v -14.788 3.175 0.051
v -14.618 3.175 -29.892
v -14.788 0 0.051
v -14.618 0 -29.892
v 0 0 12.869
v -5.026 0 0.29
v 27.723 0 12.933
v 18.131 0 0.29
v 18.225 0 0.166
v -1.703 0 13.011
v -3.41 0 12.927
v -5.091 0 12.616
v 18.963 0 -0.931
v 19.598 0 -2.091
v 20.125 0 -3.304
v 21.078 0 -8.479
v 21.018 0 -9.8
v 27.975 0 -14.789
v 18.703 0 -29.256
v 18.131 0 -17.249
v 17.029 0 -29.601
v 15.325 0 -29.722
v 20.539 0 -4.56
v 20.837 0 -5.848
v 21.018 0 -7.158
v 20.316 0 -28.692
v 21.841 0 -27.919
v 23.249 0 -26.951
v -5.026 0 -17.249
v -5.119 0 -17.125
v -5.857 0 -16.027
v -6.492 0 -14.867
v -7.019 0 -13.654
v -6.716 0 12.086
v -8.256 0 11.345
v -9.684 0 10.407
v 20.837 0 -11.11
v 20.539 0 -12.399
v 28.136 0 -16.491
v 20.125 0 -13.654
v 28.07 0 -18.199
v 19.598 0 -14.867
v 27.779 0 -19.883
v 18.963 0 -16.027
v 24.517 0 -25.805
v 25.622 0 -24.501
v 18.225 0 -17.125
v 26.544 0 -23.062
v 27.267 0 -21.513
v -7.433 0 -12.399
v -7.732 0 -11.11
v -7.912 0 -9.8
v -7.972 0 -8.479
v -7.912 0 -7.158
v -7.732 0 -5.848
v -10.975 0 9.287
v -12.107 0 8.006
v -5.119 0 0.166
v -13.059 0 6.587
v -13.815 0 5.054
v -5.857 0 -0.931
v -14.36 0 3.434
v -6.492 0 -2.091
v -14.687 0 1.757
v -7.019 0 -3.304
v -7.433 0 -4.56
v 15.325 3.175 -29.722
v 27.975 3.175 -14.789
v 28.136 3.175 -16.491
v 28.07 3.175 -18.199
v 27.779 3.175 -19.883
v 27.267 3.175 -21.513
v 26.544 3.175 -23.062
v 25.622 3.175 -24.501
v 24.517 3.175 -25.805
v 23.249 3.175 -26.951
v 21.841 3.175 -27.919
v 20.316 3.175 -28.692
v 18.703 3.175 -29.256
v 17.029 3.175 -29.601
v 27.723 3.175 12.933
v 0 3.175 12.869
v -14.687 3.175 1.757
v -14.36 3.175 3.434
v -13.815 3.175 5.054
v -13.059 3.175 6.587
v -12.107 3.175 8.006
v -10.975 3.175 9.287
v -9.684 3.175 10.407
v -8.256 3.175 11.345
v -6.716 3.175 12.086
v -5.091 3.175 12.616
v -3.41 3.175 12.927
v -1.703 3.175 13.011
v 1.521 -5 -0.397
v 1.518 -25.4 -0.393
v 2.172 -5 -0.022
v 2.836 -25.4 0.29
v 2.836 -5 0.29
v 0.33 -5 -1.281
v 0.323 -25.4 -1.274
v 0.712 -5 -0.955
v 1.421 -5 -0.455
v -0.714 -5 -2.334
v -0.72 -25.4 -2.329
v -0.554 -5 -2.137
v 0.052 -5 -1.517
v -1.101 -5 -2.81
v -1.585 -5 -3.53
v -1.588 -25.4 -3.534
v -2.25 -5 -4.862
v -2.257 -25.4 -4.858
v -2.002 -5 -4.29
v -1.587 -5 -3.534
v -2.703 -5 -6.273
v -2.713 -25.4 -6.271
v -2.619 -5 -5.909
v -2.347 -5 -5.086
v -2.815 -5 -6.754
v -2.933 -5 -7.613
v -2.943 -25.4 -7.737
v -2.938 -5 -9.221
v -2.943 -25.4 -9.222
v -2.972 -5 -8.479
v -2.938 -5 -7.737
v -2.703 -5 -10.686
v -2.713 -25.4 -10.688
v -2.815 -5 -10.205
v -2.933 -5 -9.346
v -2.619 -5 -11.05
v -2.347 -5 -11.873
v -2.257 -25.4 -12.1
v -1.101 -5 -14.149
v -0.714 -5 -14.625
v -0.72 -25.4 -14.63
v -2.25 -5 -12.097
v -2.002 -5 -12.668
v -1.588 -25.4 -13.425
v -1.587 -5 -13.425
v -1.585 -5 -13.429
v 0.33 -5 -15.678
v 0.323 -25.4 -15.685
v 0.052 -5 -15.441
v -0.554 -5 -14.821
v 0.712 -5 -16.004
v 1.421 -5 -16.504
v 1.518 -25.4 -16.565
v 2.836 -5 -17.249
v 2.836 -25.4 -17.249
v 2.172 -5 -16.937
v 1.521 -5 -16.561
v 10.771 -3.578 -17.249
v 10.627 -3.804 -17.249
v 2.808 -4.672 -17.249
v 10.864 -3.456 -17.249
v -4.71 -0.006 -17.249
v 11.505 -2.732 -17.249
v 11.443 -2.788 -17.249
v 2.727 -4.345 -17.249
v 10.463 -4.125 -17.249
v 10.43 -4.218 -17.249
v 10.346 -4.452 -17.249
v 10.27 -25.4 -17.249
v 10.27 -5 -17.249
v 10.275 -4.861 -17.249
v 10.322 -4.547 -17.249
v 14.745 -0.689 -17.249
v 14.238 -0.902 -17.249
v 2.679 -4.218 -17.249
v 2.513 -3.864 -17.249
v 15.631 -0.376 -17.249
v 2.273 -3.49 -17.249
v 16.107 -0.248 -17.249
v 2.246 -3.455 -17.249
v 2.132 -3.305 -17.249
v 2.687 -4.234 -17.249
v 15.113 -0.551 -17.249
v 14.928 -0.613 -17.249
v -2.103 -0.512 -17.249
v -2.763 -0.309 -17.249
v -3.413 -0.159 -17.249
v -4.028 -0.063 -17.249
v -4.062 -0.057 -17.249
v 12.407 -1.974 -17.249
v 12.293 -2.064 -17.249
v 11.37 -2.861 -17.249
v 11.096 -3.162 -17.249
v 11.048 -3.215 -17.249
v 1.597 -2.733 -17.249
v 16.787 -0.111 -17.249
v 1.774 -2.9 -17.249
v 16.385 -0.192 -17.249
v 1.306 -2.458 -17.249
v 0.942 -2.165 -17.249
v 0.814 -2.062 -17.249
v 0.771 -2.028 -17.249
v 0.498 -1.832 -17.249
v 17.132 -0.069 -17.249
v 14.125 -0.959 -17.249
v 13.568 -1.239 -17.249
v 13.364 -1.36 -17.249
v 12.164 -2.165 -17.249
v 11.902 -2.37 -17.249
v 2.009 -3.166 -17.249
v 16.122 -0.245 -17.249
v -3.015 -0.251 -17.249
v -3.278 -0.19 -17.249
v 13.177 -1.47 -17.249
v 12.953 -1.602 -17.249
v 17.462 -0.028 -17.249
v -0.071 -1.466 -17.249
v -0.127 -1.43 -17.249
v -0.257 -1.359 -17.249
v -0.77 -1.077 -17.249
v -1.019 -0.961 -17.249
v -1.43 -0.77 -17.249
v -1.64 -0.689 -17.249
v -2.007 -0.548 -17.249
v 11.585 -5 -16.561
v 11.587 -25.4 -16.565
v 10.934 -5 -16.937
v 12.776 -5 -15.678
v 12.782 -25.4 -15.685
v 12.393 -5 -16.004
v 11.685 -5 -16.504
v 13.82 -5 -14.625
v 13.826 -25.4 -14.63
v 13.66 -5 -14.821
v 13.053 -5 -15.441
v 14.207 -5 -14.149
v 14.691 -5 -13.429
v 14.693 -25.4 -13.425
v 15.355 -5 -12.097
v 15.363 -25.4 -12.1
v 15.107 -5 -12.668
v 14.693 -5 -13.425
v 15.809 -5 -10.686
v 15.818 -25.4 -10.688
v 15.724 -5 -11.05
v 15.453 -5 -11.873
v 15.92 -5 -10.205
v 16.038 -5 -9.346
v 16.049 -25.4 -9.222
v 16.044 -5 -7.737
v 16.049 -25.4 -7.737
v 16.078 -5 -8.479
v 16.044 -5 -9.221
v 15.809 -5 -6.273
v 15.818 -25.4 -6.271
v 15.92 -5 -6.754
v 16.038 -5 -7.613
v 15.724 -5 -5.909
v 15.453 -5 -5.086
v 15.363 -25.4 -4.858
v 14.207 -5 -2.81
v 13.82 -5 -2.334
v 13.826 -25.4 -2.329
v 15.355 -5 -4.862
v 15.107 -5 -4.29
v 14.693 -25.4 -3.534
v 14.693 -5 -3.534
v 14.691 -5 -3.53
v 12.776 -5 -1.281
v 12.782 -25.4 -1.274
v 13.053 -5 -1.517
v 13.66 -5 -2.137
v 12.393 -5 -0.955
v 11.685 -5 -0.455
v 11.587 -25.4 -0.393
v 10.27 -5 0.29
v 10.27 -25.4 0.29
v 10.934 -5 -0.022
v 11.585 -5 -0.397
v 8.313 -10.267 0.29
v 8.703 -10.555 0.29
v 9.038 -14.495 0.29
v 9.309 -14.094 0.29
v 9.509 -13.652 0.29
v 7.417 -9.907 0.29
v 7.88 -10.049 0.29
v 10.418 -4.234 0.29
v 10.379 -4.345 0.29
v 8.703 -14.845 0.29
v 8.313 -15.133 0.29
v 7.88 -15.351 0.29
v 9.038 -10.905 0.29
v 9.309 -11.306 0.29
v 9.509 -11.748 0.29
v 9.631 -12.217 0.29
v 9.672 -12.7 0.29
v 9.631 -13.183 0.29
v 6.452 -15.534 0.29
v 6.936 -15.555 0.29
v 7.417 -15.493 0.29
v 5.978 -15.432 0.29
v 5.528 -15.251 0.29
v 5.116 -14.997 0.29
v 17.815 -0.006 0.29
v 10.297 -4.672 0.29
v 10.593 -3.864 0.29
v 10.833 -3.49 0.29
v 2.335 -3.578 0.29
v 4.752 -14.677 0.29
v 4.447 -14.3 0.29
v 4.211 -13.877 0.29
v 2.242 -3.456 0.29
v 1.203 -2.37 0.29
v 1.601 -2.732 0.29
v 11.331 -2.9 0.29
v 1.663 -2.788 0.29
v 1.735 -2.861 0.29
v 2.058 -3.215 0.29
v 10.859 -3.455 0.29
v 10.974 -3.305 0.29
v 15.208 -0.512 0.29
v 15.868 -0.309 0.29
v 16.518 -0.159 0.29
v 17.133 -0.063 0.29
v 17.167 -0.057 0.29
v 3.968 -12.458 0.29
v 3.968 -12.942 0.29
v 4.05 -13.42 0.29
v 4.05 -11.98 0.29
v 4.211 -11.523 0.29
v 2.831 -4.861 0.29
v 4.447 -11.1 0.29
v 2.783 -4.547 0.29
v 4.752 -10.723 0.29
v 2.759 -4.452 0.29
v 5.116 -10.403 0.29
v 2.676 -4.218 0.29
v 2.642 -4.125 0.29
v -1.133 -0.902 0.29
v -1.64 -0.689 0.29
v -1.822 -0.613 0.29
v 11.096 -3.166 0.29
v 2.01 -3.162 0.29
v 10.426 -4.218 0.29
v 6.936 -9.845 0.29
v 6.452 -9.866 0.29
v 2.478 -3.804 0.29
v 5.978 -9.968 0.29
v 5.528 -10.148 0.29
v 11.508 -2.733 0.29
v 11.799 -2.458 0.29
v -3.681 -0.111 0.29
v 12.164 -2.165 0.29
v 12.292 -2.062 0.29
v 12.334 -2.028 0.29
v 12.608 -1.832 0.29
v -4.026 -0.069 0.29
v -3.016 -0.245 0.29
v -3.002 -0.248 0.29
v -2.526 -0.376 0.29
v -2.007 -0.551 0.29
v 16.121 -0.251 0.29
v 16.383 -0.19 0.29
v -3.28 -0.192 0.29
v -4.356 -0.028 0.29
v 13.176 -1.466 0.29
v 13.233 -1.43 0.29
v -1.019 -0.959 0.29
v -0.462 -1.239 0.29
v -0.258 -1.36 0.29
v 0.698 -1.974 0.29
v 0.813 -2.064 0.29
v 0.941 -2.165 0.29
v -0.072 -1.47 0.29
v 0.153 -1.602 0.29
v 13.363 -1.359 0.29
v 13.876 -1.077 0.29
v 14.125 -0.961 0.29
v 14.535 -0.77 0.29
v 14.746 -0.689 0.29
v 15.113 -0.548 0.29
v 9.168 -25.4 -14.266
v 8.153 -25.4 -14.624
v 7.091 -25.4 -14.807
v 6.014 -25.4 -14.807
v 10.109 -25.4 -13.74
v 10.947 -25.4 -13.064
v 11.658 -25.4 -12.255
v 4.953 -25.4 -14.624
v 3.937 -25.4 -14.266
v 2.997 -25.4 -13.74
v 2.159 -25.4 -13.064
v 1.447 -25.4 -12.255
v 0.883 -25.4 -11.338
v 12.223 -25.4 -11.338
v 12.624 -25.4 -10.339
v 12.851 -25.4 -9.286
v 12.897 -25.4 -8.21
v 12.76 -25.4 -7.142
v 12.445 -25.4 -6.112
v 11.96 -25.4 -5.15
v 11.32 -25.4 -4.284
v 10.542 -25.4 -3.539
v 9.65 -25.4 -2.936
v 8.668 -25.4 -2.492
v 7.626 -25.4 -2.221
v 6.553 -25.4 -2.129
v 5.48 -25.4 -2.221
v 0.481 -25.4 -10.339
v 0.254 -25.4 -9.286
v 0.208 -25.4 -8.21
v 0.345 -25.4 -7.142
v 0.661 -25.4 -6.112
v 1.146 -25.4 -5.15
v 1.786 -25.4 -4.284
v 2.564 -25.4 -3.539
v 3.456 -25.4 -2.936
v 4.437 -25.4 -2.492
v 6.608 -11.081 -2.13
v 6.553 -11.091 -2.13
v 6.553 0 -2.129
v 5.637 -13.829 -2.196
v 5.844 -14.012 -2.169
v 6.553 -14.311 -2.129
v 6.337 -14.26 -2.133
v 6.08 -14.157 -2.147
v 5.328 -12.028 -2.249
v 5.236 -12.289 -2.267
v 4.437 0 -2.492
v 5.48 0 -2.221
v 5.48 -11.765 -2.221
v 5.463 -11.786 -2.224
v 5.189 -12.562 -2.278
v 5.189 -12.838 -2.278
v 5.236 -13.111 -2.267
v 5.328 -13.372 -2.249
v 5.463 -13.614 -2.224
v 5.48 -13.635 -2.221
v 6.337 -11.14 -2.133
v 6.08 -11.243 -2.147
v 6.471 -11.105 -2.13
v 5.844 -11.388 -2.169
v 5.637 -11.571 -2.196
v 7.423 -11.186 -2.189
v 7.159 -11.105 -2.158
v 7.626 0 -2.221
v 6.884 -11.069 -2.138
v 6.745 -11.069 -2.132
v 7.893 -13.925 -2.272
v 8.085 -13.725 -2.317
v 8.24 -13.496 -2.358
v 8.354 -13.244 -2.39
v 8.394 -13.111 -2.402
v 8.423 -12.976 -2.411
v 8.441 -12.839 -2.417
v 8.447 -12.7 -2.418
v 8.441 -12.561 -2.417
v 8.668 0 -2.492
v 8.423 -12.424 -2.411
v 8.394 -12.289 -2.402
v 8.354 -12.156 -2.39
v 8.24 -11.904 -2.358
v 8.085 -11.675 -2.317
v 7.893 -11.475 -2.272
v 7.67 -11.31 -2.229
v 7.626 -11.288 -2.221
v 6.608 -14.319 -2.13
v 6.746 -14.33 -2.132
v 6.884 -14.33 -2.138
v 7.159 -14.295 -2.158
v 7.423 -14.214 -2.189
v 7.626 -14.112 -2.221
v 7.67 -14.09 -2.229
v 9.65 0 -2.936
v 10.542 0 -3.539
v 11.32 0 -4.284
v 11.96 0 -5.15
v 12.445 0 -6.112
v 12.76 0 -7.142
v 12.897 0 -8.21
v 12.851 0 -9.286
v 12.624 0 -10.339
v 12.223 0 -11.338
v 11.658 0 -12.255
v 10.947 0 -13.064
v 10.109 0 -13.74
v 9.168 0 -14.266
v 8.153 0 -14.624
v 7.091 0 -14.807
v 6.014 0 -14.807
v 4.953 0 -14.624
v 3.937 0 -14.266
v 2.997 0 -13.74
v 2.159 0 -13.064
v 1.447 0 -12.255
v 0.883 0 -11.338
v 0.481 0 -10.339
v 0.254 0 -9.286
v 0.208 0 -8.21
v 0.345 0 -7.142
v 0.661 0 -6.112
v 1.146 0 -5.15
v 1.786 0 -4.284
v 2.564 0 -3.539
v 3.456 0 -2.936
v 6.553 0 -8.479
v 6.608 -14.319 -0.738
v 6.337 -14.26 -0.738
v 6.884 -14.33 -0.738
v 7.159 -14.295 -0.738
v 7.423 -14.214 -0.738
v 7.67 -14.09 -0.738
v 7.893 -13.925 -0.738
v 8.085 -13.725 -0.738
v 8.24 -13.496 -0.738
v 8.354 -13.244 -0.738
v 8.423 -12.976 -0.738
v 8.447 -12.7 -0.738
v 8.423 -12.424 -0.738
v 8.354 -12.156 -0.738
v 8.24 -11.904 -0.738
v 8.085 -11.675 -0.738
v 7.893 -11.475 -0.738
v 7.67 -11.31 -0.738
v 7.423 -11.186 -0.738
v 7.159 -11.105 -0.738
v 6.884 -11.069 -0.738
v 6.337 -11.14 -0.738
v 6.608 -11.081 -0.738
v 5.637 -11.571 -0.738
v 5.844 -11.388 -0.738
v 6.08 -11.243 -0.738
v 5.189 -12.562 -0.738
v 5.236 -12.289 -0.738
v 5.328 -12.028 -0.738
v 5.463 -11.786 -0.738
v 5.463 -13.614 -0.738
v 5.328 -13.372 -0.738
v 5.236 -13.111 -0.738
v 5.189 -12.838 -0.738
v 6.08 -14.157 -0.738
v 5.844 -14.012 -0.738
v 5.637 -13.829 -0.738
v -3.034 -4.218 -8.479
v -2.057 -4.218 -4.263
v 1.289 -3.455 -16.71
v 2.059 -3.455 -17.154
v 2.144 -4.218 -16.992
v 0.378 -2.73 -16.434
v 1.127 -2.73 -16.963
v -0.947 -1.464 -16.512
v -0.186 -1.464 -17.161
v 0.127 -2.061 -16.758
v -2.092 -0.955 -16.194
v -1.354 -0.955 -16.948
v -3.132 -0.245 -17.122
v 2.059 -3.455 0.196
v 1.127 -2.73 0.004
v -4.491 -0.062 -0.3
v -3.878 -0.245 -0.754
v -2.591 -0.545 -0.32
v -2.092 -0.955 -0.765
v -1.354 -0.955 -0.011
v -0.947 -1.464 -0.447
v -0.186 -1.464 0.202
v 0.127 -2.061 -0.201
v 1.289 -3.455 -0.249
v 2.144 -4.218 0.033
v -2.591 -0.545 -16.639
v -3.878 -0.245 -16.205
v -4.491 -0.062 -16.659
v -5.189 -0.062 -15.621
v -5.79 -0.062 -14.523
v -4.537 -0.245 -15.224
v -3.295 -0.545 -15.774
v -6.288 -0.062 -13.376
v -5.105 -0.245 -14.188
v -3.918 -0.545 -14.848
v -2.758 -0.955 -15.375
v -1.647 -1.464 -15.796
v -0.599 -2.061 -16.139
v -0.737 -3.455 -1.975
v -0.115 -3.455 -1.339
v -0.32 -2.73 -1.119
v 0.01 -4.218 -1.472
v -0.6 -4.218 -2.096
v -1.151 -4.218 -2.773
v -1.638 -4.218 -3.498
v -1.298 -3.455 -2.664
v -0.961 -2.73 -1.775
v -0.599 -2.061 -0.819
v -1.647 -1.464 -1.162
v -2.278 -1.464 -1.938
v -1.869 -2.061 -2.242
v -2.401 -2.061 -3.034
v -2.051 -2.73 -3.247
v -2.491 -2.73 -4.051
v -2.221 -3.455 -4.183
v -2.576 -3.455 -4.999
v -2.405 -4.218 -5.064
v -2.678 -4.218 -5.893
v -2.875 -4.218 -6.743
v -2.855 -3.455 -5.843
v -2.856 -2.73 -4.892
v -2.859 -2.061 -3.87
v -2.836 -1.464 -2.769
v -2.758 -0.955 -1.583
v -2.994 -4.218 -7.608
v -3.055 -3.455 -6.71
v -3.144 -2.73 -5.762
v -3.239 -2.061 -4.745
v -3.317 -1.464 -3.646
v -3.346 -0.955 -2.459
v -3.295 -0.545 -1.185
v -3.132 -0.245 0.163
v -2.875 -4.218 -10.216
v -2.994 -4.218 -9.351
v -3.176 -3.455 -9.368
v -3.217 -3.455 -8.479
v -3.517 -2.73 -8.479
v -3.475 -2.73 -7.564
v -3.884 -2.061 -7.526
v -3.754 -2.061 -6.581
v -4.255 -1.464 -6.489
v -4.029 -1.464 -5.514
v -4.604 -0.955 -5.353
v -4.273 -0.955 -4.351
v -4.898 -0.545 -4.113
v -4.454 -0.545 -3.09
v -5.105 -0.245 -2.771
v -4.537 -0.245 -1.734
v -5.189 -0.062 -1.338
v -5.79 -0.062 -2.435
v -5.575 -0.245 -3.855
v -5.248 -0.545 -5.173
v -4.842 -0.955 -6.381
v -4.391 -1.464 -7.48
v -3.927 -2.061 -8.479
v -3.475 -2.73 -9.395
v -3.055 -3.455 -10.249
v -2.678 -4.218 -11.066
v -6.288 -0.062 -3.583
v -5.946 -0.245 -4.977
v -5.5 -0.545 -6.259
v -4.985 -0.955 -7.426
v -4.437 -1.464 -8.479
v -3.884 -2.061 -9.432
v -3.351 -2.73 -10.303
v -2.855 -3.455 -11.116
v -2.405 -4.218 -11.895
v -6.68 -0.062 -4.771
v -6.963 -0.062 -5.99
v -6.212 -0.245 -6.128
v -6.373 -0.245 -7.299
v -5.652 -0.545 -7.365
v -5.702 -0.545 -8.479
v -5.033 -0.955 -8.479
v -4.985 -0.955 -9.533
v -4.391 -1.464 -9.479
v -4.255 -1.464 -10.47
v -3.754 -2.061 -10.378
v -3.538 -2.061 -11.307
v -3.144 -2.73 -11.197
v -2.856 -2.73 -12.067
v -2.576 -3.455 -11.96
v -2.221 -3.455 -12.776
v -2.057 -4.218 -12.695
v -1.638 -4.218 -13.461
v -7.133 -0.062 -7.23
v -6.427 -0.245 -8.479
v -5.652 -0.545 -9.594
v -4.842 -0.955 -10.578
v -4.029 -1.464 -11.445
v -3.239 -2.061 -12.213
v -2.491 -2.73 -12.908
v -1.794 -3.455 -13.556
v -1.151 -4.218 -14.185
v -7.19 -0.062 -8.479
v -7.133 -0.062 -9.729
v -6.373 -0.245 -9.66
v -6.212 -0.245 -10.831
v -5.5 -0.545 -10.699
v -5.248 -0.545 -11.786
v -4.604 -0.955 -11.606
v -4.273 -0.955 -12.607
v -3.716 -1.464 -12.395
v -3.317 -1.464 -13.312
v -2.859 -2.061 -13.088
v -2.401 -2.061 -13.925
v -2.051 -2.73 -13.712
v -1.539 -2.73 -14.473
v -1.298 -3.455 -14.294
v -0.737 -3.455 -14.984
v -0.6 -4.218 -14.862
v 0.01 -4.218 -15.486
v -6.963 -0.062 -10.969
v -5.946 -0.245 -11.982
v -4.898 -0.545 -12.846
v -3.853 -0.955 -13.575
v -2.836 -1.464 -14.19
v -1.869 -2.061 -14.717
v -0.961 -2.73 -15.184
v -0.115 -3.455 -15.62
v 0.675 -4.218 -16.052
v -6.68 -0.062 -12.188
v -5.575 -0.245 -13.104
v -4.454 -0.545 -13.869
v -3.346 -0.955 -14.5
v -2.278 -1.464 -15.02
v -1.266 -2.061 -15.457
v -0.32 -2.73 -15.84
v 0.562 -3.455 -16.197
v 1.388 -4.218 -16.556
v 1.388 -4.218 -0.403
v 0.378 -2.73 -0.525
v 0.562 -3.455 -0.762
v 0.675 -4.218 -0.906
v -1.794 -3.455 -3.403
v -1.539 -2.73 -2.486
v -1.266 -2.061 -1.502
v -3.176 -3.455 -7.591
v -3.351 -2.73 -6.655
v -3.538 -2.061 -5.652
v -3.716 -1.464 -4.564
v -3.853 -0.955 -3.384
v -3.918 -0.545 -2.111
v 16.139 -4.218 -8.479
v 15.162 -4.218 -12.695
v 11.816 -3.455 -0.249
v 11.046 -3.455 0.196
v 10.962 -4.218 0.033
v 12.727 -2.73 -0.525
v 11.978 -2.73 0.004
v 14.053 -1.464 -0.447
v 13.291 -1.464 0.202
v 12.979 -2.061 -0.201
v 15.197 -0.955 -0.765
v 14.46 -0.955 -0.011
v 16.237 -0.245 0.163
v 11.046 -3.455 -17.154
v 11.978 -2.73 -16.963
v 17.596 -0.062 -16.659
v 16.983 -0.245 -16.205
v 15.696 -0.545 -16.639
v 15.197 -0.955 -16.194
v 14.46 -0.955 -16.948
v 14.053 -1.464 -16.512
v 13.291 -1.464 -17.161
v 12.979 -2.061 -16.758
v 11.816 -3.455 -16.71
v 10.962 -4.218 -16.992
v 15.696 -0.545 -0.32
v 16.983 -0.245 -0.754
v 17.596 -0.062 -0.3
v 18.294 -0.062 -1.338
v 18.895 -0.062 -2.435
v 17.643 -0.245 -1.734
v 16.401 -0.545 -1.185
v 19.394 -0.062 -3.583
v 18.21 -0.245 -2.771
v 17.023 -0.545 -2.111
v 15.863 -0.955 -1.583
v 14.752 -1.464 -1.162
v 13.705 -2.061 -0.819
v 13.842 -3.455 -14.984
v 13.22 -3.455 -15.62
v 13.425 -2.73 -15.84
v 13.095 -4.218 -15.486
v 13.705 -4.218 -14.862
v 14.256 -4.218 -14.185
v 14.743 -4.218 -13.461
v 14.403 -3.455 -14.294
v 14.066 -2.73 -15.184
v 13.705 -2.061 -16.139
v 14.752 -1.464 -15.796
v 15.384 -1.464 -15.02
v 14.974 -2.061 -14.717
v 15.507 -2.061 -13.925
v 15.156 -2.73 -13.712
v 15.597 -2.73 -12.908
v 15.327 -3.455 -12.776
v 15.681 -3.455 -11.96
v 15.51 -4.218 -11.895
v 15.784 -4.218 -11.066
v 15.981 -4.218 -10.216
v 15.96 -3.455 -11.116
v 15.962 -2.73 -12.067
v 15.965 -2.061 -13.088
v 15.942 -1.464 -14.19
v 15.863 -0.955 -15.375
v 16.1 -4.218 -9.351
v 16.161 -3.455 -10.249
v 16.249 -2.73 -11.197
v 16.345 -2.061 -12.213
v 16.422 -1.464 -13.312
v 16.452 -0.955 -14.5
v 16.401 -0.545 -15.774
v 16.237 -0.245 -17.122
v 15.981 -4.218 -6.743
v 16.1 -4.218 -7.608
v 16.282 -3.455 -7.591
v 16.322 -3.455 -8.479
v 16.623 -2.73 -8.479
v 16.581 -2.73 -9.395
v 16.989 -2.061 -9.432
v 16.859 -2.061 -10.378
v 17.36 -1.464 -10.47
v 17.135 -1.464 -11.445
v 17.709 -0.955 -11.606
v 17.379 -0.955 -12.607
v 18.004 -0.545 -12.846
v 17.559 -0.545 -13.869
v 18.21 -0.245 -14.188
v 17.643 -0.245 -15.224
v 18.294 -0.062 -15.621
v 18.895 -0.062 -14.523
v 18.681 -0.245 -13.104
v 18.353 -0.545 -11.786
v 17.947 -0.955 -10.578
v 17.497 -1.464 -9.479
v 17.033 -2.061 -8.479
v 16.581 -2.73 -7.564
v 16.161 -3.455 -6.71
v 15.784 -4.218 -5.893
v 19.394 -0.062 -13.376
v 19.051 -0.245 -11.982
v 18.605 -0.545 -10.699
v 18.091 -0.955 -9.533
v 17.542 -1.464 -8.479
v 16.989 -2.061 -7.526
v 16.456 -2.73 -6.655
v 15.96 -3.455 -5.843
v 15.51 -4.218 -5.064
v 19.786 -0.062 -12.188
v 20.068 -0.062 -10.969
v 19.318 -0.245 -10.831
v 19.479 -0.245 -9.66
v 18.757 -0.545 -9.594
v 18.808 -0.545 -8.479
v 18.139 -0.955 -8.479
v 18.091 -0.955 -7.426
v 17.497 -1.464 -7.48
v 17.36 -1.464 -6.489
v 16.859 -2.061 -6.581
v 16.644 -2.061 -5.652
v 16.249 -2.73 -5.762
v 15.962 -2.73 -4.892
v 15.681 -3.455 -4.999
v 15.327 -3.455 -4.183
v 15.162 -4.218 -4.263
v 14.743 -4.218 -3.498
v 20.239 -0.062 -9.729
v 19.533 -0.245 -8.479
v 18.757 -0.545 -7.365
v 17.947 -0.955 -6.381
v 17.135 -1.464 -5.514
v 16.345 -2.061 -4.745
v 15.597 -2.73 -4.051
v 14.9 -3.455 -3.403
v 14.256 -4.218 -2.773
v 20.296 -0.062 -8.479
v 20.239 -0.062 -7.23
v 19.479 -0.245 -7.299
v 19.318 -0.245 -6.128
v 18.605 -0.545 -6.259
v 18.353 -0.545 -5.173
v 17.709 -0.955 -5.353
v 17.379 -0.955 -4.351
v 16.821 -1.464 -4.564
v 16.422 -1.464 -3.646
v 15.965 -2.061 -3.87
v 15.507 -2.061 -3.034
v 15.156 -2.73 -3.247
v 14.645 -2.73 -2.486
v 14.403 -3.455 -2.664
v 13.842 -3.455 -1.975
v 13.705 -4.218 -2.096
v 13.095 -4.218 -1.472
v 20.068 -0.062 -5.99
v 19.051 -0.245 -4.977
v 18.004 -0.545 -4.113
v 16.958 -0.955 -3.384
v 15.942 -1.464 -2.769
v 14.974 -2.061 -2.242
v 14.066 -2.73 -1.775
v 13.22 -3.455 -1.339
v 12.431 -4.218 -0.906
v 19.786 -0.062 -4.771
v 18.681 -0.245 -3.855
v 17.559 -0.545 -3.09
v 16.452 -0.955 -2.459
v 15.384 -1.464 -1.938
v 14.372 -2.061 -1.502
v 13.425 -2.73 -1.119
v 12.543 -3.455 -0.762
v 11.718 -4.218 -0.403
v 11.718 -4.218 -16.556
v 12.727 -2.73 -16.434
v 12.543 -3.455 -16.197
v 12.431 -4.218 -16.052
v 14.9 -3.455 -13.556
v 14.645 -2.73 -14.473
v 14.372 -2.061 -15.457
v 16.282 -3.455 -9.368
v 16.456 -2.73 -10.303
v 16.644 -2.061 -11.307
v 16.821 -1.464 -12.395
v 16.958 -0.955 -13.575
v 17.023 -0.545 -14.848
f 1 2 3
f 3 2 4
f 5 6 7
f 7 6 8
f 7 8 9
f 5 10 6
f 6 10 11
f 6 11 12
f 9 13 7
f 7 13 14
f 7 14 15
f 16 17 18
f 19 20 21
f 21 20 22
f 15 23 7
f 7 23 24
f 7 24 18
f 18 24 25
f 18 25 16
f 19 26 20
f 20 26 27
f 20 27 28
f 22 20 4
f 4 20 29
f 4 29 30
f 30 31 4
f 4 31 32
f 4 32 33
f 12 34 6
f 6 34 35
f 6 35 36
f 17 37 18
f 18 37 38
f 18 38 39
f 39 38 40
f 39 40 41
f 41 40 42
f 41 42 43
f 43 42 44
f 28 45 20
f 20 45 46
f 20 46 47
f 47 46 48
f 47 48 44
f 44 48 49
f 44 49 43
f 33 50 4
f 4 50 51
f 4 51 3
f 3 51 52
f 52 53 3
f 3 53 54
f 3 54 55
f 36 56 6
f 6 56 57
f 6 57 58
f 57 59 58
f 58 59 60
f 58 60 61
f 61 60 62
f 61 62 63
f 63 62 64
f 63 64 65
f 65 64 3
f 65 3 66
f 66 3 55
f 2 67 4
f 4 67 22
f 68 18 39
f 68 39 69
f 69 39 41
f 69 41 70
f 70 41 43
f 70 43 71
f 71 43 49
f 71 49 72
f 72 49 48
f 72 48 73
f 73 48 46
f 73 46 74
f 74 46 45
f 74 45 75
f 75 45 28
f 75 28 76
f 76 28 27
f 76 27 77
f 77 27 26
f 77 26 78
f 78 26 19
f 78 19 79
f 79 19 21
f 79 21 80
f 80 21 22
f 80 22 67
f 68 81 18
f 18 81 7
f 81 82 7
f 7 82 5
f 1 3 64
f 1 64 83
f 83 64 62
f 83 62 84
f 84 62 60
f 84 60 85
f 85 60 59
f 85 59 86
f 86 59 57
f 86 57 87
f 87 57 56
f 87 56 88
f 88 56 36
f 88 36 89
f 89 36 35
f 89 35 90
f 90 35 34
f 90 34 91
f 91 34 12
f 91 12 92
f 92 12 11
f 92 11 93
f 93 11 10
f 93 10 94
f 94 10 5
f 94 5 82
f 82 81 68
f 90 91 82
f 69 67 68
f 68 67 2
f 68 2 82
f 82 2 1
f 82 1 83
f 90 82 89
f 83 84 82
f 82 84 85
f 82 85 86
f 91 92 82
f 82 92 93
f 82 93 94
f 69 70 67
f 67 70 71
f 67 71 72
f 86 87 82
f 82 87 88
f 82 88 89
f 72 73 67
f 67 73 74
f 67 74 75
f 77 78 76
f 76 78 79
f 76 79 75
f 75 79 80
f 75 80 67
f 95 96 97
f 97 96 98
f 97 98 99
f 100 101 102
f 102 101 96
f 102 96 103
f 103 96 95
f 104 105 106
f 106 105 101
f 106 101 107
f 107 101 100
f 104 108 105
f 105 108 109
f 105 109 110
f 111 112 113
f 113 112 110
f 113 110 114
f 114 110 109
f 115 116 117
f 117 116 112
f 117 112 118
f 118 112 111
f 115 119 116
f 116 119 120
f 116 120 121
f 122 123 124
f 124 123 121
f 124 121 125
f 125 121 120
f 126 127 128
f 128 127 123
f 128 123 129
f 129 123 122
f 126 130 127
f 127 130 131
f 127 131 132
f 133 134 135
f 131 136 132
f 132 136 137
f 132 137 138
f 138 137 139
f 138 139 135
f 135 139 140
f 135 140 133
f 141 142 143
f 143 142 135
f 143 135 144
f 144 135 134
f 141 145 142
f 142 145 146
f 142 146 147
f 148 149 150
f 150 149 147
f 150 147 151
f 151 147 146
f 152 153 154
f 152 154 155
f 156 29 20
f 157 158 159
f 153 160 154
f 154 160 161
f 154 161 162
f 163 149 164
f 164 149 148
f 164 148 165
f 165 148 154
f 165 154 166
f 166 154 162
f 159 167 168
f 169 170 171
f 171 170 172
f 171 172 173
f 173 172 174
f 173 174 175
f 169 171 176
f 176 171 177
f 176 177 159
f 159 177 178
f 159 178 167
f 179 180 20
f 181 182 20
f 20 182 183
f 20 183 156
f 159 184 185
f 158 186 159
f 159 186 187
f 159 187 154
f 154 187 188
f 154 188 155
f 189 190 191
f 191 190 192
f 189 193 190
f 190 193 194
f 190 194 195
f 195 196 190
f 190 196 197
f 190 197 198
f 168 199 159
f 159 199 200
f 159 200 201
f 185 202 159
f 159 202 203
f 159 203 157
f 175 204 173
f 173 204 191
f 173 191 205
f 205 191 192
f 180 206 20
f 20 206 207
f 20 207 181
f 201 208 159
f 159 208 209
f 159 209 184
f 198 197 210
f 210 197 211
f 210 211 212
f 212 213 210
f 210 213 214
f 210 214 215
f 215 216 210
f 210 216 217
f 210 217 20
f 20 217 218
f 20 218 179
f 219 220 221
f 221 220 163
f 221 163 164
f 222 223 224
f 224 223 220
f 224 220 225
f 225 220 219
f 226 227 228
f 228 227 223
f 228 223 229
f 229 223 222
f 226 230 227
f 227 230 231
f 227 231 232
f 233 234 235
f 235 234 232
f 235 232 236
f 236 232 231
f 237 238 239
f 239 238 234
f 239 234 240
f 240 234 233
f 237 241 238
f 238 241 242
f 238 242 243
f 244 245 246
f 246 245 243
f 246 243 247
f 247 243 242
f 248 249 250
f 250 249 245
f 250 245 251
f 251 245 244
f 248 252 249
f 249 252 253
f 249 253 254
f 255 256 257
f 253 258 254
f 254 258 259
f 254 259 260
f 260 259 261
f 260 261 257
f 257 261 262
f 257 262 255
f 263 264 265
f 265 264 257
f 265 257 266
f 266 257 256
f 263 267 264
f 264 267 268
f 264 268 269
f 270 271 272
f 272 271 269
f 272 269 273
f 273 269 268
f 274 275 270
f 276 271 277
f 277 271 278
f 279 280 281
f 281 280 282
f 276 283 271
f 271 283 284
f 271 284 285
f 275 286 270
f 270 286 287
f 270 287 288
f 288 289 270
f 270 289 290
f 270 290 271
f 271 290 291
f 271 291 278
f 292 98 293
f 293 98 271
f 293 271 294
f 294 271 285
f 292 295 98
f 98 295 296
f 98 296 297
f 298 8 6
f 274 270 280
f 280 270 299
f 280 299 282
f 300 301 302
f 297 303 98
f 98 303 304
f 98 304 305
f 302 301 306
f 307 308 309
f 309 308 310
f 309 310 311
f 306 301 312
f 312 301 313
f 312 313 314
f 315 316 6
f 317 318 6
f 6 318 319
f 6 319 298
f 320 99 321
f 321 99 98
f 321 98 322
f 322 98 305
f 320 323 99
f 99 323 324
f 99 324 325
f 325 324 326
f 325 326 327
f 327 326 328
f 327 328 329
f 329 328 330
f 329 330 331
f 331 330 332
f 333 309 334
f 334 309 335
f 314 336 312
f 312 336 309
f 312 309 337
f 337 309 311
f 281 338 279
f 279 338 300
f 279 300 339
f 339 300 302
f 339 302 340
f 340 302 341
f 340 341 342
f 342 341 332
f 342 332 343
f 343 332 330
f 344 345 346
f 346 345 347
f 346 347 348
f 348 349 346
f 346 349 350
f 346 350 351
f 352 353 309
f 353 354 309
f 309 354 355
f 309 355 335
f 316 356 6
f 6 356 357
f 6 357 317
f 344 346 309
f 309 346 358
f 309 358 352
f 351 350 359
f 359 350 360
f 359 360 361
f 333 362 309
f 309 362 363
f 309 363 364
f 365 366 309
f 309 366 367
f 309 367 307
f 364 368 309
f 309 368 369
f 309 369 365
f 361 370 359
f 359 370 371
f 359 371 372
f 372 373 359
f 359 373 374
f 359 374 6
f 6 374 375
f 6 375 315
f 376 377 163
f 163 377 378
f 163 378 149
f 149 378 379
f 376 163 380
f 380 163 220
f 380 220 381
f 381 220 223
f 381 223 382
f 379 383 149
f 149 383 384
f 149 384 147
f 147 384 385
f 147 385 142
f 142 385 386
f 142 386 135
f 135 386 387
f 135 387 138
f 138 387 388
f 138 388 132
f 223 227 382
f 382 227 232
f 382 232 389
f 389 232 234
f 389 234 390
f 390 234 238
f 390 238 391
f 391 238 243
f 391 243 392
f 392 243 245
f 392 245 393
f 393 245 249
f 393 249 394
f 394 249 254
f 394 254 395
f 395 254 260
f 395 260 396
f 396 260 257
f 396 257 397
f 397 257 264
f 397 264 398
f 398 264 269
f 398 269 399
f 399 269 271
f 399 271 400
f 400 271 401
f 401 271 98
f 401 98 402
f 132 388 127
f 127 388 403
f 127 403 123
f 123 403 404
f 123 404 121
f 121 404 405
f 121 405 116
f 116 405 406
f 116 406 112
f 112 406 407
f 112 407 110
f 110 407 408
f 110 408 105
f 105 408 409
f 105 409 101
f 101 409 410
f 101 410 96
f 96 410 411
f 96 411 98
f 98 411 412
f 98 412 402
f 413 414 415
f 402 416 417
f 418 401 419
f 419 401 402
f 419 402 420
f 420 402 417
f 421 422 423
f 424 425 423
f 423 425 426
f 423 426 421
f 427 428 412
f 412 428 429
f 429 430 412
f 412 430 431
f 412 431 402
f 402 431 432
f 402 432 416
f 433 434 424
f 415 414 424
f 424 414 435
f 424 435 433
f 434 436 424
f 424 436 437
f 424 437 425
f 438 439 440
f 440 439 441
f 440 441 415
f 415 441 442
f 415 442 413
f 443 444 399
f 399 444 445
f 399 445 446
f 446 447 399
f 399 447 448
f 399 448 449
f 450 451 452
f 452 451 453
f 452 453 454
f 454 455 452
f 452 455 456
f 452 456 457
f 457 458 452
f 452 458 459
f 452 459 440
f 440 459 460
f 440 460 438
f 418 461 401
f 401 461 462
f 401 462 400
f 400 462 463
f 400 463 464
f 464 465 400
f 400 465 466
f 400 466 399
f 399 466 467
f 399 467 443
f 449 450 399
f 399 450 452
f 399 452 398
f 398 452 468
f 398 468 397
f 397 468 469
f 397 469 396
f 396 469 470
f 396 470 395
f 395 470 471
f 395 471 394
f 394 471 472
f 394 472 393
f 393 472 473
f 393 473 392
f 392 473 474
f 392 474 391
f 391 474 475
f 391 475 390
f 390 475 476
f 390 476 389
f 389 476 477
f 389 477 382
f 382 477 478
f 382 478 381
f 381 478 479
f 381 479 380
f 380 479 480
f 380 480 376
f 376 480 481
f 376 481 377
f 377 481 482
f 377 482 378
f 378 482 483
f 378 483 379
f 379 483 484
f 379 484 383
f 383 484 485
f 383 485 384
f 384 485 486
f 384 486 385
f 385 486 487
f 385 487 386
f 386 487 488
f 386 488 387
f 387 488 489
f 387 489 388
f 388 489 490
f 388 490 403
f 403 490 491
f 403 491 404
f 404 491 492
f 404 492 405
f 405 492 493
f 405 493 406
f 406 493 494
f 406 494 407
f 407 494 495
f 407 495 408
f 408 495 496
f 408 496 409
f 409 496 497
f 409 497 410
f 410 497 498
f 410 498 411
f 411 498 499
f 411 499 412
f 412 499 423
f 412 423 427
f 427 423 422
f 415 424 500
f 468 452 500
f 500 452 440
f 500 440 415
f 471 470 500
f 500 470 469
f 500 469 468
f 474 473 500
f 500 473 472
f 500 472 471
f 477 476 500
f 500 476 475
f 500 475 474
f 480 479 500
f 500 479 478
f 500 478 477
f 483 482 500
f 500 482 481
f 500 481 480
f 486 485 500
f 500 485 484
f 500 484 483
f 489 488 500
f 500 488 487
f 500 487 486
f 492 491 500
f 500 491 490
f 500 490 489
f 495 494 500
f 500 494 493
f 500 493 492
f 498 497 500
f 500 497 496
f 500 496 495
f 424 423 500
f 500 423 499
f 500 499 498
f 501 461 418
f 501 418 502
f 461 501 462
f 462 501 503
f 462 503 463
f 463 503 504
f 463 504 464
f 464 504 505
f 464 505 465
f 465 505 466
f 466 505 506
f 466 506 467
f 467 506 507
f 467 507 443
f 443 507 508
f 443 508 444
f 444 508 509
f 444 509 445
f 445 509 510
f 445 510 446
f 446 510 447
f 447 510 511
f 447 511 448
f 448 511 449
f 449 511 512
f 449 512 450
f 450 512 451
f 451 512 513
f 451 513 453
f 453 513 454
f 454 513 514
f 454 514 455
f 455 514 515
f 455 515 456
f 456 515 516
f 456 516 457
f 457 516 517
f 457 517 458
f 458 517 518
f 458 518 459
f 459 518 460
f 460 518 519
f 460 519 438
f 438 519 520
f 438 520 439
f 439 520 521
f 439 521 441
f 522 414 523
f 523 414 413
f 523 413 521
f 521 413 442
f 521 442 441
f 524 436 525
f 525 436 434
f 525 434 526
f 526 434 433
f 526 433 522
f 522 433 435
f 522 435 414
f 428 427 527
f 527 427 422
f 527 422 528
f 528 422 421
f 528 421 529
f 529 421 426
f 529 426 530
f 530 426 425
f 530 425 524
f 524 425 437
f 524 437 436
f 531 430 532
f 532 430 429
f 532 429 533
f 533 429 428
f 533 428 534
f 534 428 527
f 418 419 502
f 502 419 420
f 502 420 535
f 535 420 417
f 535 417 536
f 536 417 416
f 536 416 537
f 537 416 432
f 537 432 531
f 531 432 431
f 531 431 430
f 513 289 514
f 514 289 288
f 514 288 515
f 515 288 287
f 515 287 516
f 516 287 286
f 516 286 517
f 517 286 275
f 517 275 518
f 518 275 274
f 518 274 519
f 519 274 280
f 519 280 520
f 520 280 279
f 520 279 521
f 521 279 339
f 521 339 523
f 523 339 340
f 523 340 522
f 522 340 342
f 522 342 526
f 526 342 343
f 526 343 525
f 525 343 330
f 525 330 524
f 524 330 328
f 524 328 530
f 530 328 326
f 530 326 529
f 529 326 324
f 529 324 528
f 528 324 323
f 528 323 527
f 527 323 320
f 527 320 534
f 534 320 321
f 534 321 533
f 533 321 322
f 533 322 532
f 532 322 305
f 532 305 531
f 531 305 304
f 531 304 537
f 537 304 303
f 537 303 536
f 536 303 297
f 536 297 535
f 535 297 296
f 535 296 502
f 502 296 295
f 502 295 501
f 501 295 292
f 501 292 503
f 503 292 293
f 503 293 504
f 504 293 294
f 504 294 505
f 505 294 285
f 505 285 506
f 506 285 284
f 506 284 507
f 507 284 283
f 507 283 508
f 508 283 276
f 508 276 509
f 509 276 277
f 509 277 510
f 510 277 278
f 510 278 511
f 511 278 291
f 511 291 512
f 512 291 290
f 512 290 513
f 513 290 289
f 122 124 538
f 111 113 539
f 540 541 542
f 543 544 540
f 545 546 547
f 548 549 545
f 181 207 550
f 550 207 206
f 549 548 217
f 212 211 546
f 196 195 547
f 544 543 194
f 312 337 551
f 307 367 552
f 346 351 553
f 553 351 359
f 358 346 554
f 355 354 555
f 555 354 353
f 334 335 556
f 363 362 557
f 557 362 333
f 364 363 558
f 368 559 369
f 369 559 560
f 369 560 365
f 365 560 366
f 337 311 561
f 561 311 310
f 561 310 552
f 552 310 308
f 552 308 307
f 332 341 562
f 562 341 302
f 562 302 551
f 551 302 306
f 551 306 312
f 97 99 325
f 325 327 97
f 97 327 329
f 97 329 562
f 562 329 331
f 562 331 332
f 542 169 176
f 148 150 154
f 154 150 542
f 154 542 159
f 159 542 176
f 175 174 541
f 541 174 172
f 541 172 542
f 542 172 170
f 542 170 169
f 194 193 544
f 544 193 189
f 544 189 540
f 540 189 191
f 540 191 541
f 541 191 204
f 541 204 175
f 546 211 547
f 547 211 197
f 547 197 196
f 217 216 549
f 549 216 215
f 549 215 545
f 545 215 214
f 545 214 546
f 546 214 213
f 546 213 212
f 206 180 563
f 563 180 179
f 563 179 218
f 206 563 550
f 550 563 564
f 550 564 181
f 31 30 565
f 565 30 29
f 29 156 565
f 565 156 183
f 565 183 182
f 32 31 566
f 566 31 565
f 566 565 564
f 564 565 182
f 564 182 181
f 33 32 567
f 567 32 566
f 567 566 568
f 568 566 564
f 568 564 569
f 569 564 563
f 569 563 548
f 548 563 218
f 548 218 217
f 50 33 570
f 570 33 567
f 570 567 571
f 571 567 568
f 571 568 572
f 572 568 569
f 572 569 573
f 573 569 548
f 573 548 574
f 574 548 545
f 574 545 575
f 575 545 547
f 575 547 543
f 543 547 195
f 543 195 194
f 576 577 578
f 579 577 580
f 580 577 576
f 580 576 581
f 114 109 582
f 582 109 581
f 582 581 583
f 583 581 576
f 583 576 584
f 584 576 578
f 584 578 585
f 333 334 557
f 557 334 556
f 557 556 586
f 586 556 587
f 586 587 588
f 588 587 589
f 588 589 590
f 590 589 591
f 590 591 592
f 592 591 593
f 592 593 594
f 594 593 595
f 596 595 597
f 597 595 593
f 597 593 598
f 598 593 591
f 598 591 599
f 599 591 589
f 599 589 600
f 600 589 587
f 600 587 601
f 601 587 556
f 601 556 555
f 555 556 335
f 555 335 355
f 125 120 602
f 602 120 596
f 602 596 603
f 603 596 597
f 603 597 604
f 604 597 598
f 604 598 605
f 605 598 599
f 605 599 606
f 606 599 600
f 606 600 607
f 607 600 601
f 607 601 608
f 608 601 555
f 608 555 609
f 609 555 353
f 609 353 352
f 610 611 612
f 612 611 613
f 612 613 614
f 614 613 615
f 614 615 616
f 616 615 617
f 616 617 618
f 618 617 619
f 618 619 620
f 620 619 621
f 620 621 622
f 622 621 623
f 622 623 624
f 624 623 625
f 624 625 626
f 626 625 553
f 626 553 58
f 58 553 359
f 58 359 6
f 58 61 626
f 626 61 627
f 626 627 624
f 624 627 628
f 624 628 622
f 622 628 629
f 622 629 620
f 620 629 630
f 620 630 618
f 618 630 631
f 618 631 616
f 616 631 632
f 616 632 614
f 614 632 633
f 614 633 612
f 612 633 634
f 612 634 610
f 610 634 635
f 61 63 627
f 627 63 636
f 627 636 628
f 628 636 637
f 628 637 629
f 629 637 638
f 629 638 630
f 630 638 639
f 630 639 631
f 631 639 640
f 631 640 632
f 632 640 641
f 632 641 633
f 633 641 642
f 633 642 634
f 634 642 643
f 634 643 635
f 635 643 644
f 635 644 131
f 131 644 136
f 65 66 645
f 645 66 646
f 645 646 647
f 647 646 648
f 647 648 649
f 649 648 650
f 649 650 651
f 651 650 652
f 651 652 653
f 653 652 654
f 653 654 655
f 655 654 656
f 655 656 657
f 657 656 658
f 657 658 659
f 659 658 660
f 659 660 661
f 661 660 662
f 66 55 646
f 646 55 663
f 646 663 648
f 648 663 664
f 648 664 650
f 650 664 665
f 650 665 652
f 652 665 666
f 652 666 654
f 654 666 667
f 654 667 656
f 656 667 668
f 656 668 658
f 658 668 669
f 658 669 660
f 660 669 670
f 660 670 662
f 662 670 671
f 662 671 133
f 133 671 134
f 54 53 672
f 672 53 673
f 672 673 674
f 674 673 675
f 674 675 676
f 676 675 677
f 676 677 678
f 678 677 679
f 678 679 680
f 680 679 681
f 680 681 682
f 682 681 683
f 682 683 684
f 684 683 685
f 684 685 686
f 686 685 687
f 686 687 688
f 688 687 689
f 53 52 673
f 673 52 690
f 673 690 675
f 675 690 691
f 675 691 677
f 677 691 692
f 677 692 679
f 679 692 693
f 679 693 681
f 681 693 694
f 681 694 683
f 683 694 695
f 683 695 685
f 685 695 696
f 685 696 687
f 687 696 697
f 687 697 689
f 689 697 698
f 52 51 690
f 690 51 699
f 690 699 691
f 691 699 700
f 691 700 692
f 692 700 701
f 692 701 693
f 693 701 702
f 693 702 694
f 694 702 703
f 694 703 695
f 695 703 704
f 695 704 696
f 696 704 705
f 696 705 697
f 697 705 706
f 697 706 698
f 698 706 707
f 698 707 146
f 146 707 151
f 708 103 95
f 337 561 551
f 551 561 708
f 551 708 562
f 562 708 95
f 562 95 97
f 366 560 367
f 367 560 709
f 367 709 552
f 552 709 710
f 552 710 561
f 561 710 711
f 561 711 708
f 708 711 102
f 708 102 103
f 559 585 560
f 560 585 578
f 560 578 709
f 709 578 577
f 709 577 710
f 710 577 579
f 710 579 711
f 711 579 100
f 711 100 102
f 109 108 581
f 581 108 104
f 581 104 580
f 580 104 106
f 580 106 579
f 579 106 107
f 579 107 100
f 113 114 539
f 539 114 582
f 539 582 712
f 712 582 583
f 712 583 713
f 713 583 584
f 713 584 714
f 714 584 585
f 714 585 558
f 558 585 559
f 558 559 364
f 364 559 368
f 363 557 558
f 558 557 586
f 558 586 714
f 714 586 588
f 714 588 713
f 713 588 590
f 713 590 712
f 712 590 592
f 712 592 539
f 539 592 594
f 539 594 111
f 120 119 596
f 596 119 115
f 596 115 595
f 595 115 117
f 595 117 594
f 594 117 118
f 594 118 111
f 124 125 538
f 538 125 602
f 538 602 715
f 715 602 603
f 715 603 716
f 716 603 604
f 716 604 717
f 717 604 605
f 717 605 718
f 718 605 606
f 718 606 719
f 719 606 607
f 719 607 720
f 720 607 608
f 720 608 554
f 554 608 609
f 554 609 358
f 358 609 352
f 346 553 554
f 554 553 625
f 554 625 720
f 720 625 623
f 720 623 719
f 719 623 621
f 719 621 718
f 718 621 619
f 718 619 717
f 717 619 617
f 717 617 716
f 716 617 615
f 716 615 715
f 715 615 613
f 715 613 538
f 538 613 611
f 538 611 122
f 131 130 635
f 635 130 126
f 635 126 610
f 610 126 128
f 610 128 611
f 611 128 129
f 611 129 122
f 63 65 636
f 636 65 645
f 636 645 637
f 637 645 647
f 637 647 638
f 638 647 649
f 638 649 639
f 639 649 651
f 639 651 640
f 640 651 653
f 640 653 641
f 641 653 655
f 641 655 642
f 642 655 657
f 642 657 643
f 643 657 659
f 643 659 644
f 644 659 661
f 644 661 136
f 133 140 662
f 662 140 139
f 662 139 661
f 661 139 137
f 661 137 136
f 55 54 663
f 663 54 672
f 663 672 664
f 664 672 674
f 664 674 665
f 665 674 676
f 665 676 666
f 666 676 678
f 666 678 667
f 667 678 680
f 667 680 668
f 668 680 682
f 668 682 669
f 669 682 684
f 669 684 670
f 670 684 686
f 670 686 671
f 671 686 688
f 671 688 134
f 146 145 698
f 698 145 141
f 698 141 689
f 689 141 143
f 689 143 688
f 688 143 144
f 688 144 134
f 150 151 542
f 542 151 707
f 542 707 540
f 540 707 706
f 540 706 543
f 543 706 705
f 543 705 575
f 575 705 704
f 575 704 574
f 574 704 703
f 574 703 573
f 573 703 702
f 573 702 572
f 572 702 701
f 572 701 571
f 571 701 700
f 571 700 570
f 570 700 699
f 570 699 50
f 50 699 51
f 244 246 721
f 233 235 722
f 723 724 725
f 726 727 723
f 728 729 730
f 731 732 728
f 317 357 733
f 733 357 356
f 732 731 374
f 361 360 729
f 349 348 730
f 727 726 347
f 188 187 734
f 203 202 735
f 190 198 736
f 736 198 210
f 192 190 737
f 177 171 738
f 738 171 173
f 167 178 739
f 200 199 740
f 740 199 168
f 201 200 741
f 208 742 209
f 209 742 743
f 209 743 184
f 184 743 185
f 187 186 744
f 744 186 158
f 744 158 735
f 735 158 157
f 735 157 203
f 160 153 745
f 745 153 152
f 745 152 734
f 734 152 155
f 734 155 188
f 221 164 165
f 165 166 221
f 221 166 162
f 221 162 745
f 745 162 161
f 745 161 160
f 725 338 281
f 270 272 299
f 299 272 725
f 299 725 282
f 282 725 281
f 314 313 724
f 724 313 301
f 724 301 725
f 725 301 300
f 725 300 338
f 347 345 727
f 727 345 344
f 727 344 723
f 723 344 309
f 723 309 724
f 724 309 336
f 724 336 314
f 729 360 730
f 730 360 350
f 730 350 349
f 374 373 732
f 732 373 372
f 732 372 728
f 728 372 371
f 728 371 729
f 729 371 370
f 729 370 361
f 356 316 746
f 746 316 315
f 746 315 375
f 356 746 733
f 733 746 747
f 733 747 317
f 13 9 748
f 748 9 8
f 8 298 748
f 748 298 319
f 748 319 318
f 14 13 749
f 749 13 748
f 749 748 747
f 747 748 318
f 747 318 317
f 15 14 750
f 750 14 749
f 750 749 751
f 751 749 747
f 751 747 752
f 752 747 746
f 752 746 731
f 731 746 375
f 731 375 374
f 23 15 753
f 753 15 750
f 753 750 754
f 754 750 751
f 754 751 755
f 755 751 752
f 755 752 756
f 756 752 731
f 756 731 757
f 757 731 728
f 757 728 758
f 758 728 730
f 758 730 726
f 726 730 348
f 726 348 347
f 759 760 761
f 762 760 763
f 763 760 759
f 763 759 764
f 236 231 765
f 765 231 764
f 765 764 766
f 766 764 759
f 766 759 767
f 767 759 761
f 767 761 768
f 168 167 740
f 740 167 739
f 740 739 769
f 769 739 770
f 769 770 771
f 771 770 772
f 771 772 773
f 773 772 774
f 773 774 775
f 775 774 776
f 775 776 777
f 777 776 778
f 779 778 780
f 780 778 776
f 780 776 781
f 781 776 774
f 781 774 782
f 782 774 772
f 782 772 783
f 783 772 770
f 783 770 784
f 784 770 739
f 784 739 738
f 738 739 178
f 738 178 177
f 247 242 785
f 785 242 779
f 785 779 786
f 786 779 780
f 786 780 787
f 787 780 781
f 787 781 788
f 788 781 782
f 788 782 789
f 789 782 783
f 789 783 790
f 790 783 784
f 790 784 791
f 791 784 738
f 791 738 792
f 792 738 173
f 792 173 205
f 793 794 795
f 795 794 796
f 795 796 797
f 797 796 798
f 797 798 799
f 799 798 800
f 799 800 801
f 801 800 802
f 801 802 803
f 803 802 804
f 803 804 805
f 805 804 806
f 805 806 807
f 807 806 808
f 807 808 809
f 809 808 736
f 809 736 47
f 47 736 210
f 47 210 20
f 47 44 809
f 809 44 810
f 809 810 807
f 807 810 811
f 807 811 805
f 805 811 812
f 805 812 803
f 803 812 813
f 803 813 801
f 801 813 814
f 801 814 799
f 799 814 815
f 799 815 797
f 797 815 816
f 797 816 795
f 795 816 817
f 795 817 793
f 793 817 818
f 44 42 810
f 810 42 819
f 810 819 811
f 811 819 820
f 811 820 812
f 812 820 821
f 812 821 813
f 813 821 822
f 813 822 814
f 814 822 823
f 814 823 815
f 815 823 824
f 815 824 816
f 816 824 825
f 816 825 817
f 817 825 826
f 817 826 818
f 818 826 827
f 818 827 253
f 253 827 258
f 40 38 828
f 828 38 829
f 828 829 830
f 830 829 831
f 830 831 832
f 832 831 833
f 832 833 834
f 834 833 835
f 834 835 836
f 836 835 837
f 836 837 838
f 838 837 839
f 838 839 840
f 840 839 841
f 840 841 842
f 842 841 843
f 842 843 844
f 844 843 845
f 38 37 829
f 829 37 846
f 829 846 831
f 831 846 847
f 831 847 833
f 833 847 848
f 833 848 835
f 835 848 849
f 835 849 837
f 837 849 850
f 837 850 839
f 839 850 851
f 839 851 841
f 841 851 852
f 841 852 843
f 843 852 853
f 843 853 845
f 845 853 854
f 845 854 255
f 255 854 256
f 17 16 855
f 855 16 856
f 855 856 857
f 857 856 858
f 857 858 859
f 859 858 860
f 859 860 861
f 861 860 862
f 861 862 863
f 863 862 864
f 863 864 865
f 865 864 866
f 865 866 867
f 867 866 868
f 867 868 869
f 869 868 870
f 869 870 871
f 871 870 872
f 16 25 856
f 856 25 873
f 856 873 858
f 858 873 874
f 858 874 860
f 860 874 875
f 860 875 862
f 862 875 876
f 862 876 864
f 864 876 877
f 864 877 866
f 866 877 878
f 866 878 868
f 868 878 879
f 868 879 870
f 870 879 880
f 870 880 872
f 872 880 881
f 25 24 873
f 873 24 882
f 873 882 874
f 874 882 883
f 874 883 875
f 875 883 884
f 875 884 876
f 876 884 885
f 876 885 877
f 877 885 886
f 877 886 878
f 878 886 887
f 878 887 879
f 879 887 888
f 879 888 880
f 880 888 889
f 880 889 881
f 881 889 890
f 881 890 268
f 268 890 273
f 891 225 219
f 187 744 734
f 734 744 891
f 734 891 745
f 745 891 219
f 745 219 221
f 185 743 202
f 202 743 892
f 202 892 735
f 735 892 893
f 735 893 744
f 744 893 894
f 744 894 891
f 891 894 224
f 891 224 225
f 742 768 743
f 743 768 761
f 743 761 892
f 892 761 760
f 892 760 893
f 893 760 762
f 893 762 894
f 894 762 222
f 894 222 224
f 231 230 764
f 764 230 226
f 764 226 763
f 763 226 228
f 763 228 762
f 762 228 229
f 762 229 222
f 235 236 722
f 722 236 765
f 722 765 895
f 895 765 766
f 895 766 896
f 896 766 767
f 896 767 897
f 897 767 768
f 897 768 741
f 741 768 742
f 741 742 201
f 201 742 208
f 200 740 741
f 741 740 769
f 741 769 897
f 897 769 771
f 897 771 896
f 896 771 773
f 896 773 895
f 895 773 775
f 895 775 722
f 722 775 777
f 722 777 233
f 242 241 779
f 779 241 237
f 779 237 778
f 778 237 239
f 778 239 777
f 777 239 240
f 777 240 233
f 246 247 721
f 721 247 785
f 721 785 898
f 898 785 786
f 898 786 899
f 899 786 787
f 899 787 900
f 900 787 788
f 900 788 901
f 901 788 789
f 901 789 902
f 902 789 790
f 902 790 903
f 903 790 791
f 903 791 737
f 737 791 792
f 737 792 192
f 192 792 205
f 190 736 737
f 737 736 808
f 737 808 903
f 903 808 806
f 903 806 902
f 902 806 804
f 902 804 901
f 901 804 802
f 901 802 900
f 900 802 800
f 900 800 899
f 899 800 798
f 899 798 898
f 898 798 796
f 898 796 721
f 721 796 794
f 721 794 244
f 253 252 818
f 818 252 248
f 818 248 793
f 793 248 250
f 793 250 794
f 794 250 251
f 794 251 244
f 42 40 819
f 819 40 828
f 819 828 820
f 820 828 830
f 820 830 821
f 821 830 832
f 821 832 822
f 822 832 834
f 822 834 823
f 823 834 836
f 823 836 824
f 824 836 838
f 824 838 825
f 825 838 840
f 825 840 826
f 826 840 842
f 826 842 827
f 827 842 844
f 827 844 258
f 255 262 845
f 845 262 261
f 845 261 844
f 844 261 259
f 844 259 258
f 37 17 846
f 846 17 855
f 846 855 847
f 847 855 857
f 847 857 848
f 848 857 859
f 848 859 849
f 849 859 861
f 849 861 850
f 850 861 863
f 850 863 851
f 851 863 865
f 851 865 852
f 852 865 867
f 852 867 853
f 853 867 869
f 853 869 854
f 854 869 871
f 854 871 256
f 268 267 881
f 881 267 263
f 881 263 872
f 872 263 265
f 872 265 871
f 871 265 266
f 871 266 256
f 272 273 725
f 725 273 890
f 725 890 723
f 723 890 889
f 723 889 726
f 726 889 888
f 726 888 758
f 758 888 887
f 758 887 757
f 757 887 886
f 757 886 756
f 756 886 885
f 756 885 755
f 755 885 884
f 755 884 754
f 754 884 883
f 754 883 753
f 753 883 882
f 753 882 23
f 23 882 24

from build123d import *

# Parameters (mm, degrees)
BOSS_EXTRUDE1_DEPTH                         = 3.175
SKETCH2_R                                   = 6.35
BOSS_EXTRUDE2_DEPTH                         = 25.4
CSK_START                                   = -3
CSK_FOR_4_FLAT_HEAD_MACHINE_SCREW_2_R       = 1.63195
CSK_FOR_4_FLAT_HEAD_MACHINE_SCREW_100_DEPTH = 3.290441965
FILLET1_R                                   = 5


with BuildPart() as part:
    # Sketch3 → Boss-Extrude1 (new body)
    with BuildSketch(Plane(origin=(0, 0, 0), x_dir=(1, 0, 0), z_dir=(0, 1, 0))):
        with BuildLine():
            Line((-14.617805765, 29.891737943), (27.723314788, -12.932962722))
            Line((27.723314788, -12.932962722), (0, -12.869393963))
            ThreePointArc((0, -12.869393963), (-10.348328742, -9.868233169), (-14.787821417, -0.050607252))
            Line((-14.787821417, -0.050607252), (-14.617805765, 29.891737943))
        make_face()
        with BuildLine():
            Line((15.324539429, 29.721722291), (-14.617805765, 29.891737943))
            Line((-14.617805765, 29.891737943), (27.723314788, -12.932962722))
            Line((27.723314788, -12.932962722), (27.974571526, 14.789286355))
            ThreePointArc((27.974571526, 14.789286355), (25.091118162, 25.171028529), (15.324539429, 29.721722291))
        make_face()
    extrude(amount=BOSS_EXTRUDE1_DEPTH)

    # Sketch2 → Boss-Extrude2 (add)
    with BuildSketch(Plane(origin=(0, 0, 0), x_dir=(1, 0, 0), z_dir=(0, 1, 0))):
        with BuildLine():
            Line((2.835804927, -0.290441965), (10.269704096, -0.290441965))
            ThreePointArc((10.269704096, -0.290441965), (16.077754512, 8.47938761), (10.269704096, 17.249217186))
            Line((10.269704096, 17.249217186), (2.835804927, 17.249217186))
            ThreePointArc((2.835804927, 17.249217186), (-2.972245488, 8.47938761), (2.835804927, -0.290441965))
        make_face()
        with Locations(Location((6.552754512, 8.47938761, 0), (0, 0, 270))):
            Circle(SKETCH2_R, mode=Mode.SUBTRACT)
    extrude(amount=-BOSS_EXTRUDE2_DEPTH)

    # CSK for #4 Flat Head Machine Screw (100)1: read off the stored shape, not the designer's step
    # CSK for _4 Flat Head Machine Screw _ 2 → CSK for #4 Flat Head Machine Screw (100)1 (cut)
    with BuildSketch(Plane.XY.offset(CSK_START)):
        with Locations((6.81485322, -12.7)):
            Circle(CSK_FOR_4_FLAT_HEAD_MACHINE_SCREW_2_R)
    extrude(amount=CSK_FOR_4_FLAT_HEAD_MACHINE_SCREW_100_DEPTH, mode=Mode.SUBTRACT)

    # CSK for _4 Flat Head Machine Screw _ 3 o → CSK for _4 Flat Head Machine Screw _ 3 (revolve, cut)
    with BuildSketch(Plane(origin=(6.81485322, -12.7, 0), x_dir=(1, 0, 0), z_dir=(0, -1, 0))):
        Polygon((1.63195, 0.290441965), (1.63195, -0.737916588), (2.8575, 0.290441965), align=None)
    revolve(axis=Axis((6.81485322, -12.7, 0), (0, 0, 1)), mode=Mode.SUBTRACT)

    # Fillet1
    fillet1_edges = [part.edges().sort_by_distance(p)[0] for p in [
        (-2.972245488, 0, -8.47938761),
        (16.077754512, 0, -8.47938761),
    ]]
    fillet(fillet1_edges, radius=FILLET1_R)


solid = part.part
